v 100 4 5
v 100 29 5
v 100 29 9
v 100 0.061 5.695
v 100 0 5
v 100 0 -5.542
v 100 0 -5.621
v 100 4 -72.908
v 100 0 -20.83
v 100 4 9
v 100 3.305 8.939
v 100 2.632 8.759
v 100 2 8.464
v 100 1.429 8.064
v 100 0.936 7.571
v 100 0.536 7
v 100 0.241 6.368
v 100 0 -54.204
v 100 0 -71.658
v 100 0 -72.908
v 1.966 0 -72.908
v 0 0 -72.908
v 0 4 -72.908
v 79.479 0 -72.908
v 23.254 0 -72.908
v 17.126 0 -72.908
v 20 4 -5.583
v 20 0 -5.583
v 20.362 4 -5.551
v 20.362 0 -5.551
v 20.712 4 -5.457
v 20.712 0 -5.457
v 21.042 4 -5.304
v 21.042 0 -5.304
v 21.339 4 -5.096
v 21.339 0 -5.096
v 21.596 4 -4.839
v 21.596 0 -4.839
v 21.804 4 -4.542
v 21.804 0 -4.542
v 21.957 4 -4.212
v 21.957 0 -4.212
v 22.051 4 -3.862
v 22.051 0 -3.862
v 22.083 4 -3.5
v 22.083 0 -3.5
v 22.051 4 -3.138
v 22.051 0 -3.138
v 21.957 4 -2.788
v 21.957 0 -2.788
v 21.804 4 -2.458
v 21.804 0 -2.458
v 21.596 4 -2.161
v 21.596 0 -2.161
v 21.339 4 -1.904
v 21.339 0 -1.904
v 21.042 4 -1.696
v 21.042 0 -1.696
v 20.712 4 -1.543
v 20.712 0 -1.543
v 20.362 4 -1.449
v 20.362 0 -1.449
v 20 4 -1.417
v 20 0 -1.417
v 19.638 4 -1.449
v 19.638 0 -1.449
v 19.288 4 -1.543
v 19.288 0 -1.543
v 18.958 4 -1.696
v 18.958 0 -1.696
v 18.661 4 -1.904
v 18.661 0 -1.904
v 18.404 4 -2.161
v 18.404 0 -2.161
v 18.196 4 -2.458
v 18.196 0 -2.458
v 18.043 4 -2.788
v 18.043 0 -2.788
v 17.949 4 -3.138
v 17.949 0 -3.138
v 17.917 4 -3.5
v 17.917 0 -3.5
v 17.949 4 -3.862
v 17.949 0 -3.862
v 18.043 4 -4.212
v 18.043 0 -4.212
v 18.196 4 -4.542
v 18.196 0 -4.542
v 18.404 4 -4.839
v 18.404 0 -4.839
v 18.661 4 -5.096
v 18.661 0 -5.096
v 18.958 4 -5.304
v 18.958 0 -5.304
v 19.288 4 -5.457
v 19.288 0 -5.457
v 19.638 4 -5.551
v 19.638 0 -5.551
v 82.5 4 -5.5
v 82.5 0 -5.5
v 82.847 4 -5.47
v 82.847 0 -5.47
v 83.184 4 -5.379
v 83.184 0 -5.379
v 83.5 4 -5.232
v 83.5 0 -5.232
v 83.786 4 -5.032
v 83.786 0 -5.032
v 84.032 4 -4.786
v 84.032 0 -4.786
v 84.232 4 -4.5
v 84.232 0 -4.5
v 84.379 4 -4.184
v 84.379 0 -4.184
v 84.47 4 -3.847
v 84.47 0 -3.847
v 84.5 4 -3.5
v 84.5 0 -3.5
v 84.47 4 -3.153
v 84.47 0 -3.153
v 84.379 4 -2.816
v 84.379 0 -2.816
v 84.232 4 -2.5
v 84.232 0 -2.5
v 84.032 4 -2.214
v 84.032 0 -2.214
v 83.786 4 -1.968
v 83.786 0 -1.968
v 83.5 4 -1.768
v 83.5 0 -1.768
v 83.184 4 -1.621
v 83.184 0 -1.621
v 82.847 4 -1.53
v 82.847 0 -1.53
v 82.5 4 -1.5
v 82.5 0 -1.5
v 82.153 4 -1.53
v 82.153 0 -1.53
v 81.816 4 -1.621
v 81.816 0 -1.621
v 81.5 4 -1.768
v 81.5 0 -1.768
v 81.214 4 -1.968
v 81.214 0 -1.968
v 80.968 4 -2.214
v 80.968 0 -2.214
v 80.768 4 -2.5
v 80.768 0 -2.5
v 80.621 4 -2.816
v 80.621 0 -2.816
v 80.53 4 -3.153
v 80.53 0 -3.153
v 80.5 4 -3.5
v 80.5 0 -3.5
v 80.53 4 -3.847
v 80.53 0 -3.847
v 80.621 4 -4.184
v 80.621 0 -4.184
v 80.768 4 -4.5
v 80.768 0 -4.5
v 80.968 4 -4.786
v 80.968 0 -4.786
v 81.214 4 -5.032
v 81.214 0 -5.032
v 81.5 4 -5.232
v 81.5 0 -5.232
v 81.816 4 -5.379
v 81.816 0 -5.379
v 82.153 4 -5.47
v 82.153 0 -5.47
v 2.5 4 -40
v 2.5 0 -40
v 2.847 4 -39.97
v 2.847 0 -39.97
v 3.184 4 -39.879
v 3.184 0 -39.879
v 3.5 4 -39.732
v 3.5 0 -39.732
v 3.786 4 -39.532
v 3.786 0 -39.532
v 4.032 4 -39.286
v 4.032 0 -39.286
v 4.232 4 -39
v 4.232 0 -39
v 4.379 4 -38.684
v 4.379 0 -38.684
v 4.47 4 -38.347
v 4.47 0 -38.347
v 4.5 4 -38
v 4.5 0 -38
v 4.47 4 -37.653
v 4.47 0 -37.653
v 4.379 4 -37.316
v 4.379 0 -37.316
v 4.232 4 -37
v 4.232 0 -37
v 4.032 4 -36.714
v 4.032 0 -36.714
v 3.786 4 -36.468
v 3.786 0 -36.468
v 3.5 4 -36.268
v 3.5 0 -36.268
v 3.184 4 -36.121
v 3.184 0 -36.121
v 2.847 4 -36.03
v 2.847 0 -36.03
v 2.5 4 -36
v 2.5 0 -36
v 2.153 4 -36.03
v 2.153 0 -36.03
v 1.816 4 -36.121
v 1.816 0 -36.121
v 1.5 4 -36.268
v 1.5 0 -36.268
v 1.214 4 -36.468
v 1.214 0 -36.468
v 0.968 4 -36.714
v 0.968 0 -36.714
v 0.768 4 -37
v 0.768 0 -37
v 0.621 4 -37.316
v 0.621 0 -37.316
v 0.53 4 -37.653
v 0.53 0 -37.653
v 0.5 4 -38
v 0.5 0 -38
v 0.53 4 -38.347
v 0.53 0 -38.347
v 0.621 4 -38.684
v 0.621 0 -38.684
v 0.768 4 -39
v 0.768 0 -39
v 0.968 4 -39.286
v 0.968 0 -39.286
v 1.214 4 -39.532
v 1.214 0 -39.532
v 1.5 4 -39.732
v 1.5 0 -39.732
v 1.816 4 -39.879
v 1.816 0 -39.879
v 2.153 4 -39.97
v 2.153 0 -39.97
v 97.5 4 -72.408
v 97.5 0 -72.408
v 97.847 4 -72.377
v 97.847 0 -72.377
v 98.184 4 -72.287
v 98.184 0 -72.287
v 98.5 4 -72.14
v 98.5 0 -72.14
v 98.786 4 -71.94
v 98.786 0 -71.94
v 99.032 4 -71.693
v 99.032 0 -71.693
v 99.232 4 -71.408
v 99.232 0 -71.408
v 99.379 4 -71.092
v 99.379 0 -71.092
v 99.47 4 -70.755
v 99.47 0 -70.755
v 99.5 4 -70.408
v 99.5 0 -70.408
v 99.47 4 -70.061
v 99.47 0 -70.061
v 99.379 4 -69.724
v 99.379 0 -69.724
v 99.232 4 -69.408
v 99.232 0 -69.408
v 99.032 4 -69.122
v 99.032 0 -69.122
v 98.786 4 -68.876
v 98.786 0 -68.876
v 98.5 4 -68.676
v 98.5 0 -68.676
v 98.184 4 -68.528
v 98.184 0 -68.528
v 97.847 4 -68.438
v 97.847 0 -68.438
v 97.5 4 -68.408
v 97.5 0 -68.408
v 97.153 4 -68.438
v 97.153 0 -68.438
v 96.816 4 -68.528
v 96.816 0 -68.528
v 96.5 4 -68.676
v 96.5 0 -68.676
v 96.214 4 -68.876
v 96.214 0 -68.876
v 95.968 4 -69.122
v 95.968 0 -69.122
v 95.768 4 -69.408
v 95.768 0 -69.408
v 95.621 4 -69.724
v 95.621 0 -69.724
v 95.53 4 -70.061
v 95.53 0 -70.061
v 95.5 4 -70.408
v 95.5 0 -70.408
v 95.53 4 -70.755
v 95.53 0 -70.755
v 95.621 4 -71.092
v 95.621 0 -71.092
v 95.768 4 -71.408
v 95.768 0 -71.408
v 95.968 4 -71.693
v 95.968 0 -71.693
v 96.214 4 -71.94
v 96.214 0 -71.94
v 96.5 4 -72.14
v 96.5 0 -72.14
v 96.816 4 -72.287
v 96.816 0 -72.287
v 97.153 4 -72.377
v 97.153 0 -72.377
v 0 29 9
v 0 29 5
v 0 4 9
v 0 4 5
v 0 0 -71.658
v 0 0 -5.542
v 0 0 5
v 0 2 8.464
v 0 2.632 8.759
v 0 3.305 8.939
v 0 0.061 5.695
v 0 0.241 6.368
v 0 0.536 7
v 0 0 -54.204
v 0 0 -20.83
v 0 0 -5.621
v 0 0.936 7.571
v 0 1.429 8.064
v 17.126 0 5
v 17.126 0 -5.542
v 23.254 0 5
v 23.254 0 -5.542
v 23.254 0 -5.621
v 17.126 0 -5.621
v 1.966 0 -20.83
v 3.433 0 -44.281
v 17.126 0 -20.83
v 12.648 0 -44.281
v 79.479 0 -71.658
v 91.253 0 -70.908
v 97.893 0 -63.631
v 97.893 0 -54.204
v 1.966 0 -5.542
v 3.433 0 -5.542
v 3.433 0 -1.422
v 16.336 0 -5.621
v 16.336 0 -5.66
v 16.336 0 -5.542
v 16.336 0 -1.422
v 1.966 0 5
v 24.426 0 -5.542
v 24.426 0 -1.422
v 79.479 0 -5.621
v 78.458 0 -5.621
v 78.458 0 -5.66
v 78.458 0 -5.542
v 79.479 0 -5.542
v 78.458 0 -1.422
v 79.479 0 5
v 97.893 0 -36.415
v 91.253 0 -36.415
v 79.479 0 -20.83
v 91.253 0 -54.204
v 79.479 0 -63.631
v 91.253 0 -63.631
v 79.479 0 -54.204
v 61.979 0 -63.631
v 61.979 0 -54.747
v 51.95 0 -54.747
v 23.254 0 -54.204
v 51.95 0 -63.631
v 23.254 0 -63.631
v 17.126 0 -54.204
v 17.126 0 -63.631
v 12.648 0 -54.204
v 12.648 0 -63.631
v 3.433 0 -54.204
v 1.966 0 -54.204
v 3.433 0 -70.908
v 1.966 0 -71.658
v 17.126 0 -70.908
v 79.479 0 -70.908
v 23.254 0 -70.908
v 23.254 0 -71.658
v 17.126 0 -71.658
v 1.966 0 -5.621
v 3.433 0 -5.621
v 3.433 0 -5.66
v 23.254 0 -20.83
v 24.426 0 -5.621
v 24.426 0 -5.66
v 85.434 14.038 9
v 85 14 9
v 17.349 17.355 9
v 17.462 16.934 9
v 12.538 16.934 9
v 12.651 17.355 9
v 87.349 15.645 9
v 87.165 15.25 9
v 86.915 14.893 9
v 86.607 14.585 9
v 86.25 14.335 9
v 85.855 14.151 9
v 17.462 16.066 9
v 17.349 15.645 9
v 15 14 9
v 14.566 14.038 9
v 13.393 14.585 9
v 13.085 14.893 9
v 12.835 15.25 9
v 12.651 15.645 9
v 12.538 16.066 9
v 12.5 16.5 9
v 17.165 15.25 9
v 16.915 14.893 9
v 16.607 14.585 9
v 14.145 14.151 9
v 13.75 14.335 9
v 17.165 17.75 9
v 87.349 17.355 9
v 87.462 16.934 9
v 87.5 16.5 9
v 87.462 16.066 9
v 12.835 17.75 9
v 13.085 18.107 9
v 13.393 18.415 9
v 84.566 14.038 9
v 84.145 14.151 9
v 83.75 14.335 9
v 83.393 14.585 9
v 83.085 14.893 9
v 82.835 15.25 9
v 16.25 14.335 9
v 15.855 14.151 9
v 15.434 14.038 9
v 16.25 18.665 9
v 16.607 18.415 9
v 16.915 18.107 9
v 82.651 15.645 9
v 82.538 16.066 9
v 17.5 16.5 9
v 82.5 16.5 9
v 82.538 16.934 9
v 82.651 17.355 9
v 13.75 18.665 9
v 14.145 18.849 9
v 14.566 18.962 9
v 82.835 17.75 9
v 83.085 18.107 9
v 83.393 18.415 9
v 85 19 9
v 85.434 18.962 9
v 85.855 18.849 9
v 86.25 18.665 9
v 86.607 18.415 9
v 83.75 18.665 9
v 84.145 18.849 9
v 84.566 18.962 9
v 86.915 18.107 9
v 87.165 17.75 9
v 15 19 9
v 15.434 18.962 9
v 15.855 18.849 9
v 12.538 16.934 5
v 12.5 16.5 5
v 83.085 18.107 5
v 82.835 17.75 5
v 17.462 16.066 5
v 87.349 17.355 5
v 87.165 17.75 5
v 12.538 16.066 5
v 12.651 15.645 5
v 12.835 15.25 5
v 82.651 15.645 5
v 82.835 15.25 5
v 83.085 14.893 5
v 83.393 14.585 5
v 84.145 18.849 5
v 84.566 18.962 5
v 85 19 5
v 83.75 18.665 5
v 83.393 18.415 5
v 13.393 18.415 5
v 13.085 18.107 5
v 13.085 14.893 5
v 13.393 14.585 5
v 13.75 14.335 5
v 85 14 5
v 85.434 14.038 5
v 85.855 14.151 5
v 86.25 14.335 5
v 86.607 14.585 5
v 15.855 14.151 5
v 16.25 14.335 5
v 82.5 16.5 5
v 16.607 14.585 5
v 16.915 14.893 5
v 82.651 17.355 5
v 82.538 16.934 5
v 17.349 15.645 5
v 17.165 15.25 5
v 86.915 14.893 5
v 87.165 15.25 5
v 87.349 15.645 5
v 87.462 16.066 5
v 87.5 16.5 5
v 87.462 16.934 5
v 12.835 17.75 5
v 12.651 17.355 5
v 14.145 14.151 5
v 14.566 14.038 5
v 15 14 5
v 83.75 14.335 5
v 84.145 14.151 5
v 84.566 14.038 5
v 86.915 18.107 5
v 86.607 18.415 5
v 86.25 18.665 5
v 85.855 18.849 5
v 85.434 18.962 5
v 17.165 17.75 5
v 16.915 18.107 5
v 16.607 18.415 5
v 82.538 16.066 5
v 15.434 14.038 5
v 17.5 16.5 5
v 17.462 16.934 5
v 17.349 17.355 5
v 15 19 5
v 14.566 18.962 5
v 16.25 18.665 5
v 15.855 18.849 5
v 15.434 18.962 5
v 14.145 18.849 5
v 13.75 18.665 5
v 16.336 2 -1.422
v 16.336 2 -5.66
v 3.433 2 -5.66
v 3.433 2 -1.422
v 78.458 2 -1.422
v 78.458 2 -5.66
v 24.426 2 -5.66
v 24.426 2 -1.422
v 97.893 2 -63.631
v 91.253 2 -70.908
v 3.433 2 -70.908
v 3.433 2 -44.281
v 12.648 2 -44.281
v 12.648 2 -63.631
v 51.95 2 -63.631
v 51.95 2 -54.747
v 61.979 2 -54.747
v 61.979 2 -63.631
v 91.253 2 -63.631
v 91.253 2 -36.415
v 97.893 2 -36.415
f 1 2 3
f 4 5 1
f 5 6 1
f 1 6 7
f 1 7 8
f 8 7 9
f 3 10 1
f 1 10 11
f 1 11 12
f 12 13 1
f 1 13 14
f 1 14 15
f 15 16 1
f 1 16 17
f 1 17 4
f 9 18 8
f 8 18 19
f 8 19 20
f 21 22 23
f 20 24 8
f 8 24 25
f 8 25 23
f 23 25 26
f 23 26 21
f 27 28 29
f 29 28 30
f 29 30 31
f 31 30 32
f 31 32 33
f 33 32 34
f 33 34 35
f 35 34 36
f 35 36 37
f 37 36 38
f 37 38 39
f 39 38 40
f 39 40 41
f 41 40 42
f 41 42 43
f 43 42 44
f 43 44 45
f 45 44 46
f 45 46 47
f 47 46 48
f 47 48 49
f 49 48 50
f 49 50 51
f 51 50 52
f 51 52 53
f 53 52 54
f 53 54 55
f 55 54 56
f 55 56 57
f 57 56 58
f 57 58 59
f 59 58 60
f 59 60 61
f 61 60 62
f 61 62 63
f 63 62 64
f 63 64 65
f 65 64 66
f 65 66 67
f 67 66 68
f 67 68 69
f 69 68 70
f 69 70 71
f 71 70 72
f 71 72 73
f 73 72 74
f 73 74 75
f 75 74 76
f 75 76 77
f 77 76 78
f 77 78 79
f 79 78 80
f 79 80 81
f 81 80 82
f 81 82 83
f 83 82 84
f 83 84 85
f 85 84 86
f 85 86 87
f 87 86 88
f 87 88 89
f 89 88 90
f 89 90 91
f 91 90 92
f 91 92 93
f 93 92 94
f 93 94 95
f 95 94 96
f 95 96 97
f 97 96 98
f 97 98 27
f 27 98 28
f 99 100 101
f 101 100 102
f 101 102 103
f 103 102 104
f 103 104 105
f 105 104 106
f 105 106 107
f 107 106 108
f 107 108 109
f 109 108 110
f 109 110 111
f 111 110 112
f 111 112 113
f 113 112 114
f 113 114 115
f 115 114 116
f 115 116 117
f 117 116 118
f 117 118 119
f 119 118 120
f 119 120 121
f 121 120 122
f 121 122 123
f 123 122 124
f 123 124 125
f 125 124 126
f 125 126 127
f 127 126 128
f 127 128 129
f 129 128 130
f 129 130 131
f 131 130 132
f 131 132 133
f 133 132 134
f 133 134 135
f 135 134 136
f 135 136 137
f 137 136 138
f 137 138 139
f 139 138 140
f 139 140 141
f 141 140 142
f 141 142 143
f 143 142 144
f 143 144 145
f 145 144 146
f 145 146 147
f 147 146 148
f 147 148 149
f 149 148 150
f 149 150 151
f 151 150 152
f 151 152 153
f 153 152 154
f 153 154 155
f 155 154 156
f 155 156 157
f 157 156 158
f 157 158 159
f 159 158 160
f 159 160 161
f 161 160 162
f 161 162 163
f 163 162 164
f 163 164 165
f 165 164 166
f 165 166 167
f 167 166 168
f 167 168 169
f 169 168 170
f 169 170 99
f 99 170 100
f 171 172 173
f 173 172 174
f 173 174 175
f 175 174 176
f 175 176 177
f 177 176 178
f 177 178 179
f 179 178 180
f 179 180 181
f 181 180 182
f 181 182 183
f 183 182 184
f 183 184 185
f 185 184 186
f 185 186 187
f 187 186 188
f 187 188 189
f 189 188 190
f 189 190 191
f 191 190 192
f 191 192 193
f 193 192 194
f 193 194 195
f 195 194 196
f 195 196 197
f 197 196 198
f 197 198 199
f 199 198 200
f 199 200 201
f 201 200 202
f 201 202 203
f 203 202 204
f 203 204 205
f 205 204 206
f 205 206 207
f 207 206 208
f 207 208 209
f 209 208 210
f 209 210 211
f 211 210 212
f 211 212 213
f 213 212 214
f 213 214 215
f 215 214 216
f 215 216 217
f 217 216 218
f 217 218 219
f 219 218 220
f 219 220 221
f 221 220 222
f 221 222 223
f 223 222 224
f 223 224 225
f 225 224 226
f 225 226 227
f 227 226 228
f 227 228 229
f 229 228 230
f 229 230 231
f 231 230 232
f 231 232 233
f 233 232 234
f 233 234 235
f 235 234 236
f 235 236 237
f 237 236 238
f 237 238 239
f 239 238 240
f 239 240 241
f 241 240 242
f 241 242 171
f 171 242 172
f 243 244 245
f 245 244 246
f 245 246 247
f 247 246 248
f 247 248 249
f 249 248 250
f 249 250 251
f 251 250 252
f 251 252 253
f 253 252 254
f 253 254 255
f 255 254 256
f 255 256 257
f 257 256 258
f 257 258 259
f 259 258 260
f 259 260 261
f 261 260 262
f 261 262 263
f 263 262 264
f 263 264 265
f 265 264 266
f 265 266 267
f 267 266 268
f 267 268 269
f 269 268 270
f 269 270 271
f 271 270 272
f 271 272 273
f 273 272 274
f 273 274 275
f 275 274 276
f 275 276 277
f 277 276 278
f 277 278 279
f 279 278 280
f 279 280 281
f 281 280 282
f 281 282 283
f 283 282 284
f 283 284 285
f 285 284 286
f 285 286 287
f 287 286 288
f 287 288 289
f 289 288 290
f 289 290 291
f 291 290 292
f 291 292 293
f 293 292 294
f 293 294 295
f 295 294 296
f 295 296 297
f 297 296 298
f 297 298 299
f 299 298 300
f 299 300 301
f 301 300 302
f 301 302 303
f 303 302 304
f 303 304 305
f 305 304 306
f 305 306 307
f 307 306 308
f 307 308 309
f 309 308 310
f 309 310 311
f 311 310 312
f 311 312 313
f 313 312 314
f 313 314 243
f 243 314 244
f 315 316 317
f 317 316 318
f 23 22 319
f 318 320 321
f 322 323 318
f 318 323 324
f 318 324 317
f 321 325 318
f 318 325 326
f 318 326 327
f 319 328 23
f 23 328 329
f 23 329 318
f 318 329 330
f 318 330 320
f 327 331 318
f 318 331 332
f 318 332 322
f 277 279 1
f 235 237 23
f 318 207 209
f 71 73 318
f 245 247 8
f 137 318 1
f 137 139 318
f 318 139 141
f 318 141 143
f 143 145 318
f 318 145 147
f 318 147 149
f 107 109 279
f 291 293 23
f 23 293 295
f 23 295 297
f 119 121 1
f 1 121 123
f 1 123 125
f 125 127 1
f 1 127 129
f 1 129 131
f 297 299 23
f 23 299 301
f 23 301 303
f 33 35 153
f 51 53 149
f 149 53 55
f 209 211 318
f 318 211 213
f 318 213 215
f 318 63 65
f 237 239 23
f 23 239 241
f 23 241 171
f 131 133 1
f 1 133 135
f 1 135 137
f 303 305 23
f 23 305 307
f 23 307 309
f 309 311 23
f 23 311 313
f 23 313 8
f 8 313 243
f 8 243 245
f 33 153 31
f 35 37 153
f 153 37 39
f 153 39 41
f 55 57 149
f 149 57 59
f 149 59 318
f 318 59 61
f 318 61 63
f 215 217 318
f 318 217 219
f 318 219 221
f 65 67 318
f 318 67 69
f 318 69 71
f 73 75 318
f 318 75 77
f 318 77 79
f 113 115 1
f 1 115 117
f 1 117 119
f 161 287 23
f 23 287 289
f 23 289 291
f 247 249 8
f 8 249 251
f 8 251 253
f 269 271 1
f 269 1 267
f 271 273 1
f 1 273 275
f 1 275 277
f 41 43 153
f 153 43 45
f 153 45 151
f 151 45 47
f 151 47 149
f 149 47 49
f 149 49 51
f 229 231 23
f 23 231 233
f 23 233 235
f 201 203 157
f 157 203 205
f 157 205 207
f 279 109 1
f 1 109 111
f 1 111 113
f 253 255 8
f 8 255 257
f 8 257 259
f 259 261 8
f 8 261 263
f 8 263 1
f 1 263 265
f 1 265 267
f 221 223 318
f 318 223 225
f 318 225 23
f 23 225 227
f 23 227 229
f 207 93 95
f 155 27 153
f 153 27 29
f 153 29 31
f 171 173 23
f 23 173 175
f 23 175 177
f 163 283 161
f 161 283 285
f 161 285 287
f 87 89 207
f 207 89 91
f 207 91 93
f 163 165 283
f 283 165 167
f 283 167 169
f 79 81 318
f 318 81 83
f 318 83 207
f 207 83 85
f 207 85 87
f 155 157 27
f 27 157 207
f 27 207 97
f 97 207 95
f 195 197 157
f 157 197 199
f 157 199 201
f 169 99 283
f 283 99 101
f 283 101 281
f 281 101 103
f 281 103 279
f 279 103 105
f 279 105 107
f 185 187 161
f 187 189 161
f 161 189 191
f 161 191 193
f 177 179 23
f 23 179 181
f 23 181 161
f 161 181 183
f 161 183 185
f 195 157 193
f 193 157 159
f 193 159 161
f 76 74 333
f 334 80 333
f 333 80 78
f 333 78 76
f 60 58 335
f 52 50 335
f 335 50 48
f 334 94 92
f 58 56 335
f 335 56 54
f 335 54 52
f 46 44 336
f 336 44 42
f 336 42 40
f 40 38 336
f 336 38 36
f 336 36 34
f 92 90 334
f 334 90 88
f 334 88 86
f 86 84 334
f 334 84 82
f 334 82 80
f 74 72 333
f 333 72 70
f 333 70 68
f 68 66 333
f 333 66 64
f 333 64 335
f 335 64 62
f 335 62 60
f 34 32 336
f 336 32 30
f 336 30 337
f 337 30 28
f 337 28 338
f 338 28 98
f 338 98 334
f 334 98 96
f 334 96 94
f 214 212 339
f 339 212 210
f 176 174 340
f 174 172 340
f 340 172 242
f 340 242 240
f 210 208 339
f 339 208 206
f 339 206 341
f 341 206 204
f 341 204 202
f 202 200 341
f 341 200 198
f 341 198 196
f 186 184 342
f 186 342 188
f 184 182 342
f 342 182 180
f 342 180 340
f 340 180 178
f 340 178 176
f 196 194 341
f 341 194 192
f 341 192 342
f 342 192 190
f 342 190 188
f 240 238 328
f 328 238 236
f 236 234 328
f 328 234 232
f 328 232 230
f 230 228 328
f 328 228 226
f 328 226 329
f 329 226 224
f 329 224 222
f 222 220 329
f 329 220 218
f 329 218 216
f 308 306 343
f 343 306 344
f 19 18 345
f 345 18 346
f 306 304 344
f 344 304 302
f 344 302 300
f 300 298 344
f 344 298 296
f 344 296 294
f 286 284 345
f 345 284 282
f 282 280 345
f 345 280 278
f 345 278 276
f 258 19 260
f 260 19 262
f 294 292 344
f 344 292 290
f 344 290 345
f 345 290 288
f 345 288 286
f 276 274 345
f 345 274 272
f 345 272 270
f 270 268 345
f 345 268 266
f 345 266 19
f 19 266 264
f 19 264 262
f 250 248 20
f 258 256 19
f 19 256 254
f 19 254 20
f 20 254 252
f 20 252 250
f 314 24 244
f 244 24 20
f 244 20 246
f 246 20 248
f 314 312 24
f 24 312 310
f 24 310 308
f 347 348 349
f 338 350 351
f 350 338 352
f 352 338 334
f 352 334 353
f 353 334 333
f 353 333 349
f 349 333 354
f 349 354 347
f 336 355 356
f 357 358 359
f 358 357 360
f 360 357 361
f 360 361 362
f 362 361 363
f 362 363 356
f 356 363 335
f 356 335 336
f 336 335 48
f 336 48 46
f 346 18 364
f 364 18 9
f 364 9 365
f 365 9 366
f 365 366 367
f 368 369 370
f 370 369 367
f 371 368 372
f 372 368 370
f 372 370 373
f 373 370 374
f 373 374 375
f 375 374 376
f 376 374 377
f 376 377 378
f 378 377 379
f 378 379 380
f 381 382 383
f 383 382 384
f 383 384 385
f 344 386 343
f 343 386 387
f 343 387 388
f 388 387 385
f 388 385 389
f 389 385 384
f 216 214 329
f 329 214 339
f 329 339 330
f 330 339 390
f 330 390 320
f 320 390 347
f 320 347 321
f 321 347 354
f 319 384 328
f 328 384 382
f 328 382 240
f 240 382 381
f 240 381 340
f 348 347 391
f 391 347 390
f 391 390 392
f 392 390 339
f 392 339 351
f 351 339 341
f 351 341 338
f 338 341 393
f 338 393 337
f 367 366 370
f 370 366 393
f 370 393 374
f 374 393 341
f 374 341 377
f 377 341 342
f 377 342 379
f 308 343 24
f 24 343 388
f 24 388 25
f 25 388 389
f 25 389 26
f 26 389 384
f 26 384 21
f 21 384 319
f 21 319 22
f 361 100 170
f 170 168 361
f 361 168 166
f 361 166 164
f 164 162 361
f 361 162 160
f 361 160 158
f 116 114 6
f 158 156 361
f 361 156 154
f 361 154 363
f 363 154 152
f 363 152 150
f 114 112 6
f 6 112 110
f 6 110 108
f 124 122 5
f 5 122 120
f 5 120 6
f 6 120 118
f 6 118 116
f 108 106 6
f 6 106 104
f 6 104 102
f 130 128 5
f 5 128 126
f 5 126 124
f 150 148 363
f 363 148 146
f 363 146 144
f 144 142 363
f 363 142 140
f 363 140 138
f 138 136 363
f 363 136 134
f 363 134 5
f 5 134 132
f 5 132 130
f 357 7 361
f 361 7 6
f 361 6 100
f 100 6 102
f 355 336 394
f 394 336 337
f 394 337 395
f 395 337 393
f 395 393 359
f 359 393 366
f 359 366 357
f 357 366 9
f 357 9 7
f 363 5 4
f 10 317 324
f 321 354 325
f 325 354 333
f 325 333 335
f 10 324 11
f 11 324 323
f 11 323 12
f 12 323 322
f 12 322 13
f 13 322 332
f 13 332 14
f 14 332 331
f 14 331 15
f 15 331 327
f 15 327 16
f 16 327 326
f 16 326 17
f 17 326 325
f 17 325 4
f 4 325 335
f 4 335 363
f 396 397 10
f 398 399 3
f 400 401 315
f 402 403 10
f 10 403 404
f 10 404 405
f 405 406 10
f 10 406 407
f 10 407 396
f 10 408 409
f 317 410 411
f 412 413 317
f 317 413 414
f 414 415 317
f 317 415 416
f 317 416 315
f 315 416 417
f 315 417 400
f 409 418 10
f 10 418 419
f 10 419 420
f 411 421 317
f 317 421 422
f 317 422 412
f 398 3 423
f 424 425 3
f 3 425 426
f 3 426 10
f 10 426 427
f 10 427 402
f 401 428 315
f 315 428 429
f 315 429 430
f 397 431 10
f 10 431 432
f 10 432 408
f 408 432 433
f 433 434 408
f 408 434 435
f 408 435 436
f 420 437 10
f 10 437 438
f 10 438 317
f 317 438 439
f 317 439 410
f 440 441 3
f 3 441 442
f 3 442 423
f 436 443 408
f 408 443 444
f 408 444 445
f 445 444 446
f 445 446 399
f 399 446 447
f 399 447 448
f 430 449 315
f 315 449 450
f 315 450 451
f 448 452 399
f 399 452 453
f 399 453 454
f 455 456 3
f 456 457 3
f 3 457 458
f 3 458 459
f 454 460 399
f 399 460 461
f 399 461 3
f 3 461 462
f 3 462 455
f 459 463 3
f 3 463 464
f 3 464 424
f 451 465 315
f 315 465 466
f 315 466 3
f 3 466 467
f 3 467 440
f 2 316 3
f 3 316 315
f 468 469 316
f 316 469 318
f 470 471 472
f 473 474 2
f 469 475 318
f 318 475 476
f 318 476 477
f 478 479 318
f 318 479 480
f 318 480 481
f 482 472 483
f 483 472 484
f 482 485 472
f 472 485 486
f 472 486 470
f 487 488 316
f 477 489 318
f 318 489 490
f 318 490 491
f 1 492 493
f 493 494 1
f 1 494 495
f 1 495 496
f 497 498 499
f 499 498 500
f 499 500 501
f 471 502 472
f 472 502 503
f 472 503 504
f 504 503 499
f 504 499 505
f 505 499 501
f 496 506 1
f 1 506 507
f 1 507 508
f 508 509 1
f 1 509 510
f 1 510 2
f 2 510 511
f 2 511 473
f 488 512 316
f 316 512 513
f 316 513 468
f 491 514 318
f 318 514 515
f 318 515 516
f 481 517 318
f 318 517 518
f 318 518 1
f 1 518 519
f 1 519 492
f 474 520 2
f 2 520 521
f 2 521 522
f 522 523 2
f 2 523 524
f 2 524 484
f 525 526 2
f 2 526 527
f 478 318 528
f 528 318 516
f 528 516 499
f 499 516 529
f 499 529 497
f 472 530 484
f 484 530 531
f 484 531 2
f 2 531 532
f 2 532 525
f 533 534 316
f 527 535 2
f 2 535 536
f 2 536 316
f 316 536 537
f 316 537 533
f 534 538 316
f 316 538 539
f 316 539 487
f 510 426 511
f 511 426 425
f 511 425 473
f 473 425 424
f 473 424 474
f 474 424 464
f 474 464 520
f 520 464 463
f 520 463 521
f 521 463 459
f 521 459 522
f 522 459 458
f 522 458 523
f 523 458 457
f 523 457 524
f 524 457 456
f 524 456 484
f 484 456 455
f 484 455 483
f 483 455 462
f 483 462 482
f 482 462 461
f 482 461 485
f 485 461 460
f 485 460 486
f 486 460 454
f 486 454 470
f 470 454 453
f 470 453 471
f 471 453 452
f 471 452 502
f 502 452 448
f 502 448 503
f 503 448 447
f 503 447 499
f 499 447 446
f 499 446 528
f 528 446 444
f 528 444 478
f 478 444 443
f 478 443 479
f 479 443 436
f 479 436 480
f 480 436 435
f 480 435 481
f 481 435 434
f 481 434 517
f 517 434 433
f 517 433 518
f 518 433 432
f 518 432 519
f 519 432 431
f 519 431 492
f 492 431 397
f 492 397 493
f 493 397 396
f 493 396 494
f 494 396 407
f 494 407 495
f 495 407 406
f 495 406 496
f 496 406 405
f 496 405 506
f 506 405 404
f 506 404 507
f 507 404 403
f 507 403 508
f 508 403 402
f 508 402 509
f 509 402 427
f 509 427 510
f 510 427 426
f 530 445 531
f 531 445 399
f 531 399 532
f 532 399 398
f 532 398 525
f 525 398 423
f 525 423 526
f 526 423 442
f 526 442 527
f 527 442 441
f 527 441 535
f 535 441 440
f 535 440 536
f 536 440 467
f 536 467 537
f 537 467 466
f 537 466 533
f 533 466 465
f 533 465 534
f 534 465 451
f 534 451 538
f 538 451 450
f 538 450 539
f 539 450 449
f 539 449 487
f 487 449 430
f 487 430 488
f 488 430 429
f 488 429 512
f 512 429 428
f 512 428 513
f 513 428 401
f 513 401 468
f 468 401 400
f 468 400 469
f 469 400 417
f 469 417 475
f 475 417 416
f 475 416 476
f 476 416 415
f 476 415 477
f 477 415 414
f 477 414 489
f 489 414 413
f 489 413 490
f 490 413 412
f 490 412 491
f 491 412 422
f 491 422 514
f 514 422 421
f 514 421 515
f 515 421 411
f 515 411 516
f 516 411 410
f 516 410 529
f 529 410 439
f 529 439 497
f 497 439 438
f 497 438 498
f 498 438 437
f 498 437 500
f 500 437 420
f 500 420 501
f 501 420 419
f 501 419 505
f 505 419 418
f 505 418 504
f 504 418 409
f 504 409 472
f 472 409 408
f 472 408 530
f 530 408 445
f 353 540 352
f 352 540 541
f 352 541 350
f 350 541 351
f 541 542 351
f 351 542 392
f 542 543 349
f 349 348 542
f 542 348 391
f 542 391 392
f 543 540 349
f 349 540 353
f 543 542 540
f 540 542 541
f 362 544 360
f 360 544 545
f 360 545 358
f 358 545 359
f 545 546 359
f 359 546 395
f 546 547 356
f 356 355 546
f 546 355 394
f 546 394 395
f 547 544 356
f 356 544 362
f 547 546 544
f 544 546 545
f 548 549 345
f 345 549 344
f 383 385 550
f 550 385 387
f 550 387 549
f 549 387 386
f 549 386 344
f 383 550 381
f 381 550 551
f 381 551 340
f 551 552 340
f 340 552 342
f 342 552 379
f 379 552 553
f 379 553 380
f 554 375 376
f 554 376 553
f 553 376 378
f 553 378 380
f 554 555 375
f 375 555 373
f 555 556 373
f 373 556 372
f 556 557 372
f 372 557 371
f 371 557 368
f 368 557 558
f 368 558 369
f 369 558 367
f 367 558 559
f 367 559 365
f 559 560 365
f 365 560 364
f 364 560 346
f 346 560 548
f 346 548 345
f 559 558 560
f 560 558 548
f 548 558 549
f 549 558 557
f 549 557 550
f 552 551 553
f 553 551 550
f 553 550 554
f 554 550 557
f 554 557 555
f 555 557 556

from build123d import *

# Parameters (mm, degrees)
SKETCH1_W           = 100
SKETCH1_H           = 72.907808631
SKETCH1_R           = 2
SKETCH1_R_2         = 2.083080247
BOSS_EXTRUDE1_DEPTH = 4
BOSS_EXTRUDE2_DEPTH = 100
SKETCH3_R           = 2.5
CUT_EXTRUDE1_DEPTH  = 4
SKETCH4_W           = 54.032487287
SKETCH4_H           = 4.238299892
SKETCH4_W_2         = 12.902793756
CUT_EXTRUDE4_DEPTH  = 2


with BuildPart() as part:
    # Sketch1 → Boss-Extrude1 (new body)
    with BuildSketch(Plane(origin=(0, 0, 0), x_dir=(1, 0, 0), z_dir=(0, 1, 0))):
        with Locations((50, 36.453904316)):
            Rectangle(SKETCH1_W, SKETCH1_H)
        with Locations((97.5, 70.407808631)):
            Circle(SKETCH1_R, mode=Mode.SUBTRACT)
        with Locations((2.5, 38)):
            Circle(SKETCH1_R, mode=Mode.SUBTRACT)
        with Locations((82.5, 3.5)):
            Circle(SKETCH1_R, mode=Mode.SUBTRACT)
        with Locations((20, 3.5)):
            Circle(SKETCH1_R_2, mode=Mode.SUBTRACT)
    extrude(amount=BOSS_EXTRUDE1_DEPTH)

    # Sketch2 → Boss-Extrude2 (add)
    with BuildSketch(Plane.ZY):
        with BuildLine():
            Line((0, 4), (5, 4))
            Line((5, 4), (5, 29))
            Line((5, 29), (9, 29))
            Line((9, 29), (9, 5.38521522))
            Line((9, 5.38521522), (9, 4))
            ThreePointArc((9, 4), (7.828427125, 1.171572875), (5, 0))
            Line((5, 0), (0, 0))
            Line((0, 0), (0, 4))
        make_face()
    extrude(amount=-BOSS_EXTRUDE2_DEPTH)

    # Sketch3 → Cut-Extrude1 (cut)
    with BuildSketch(Plane.XY.offset(9)):
        with Locations((15, 16.5)):
            Circle(SKETCH3_R)
        with Locations((85, 16.5)):
            Circle(SKETCH3_R)
    extrude(amount=-CUT_EXTRUDE1_DEPTH, mode=Mode.SUBTRACT)

    # Sketch4 → Cut-Extrude4 (cut)
    with BuildSketch(Plane.XZ):
        Polygon((51.950078291, -63.631079916), (12.647642859, -63.631079916), (12.647642859, -44.280868197), (3.432980611, -44.280868197), (3.432980611, -70.907808631), (12.647642859, -70.907808631), (91.252513722, -70.907808631), (97.892827947, -63.631079916), (97.892827947, -36.415165299), (91.252513722, -36.415165299), (91.252513722, -63.631079916), (61.978819372, -63.631079916), (61.978819372, -54.74747752), (51.950078291, -54.74747752), align=None)
        with Locations((51.441944052, -3.540646856)):
            Rectangle(SKETCH4_W, SKETCH4_H)
        with Locations((9.884377489, -3.540646856)):
            Rectangle(SKETCH4_W_2, SKETCH4_H)
    extrude(amount=-CUT_EXTRUDE4_DEPTH, mode=Mode.SUBTRACT)


solid = part.part
